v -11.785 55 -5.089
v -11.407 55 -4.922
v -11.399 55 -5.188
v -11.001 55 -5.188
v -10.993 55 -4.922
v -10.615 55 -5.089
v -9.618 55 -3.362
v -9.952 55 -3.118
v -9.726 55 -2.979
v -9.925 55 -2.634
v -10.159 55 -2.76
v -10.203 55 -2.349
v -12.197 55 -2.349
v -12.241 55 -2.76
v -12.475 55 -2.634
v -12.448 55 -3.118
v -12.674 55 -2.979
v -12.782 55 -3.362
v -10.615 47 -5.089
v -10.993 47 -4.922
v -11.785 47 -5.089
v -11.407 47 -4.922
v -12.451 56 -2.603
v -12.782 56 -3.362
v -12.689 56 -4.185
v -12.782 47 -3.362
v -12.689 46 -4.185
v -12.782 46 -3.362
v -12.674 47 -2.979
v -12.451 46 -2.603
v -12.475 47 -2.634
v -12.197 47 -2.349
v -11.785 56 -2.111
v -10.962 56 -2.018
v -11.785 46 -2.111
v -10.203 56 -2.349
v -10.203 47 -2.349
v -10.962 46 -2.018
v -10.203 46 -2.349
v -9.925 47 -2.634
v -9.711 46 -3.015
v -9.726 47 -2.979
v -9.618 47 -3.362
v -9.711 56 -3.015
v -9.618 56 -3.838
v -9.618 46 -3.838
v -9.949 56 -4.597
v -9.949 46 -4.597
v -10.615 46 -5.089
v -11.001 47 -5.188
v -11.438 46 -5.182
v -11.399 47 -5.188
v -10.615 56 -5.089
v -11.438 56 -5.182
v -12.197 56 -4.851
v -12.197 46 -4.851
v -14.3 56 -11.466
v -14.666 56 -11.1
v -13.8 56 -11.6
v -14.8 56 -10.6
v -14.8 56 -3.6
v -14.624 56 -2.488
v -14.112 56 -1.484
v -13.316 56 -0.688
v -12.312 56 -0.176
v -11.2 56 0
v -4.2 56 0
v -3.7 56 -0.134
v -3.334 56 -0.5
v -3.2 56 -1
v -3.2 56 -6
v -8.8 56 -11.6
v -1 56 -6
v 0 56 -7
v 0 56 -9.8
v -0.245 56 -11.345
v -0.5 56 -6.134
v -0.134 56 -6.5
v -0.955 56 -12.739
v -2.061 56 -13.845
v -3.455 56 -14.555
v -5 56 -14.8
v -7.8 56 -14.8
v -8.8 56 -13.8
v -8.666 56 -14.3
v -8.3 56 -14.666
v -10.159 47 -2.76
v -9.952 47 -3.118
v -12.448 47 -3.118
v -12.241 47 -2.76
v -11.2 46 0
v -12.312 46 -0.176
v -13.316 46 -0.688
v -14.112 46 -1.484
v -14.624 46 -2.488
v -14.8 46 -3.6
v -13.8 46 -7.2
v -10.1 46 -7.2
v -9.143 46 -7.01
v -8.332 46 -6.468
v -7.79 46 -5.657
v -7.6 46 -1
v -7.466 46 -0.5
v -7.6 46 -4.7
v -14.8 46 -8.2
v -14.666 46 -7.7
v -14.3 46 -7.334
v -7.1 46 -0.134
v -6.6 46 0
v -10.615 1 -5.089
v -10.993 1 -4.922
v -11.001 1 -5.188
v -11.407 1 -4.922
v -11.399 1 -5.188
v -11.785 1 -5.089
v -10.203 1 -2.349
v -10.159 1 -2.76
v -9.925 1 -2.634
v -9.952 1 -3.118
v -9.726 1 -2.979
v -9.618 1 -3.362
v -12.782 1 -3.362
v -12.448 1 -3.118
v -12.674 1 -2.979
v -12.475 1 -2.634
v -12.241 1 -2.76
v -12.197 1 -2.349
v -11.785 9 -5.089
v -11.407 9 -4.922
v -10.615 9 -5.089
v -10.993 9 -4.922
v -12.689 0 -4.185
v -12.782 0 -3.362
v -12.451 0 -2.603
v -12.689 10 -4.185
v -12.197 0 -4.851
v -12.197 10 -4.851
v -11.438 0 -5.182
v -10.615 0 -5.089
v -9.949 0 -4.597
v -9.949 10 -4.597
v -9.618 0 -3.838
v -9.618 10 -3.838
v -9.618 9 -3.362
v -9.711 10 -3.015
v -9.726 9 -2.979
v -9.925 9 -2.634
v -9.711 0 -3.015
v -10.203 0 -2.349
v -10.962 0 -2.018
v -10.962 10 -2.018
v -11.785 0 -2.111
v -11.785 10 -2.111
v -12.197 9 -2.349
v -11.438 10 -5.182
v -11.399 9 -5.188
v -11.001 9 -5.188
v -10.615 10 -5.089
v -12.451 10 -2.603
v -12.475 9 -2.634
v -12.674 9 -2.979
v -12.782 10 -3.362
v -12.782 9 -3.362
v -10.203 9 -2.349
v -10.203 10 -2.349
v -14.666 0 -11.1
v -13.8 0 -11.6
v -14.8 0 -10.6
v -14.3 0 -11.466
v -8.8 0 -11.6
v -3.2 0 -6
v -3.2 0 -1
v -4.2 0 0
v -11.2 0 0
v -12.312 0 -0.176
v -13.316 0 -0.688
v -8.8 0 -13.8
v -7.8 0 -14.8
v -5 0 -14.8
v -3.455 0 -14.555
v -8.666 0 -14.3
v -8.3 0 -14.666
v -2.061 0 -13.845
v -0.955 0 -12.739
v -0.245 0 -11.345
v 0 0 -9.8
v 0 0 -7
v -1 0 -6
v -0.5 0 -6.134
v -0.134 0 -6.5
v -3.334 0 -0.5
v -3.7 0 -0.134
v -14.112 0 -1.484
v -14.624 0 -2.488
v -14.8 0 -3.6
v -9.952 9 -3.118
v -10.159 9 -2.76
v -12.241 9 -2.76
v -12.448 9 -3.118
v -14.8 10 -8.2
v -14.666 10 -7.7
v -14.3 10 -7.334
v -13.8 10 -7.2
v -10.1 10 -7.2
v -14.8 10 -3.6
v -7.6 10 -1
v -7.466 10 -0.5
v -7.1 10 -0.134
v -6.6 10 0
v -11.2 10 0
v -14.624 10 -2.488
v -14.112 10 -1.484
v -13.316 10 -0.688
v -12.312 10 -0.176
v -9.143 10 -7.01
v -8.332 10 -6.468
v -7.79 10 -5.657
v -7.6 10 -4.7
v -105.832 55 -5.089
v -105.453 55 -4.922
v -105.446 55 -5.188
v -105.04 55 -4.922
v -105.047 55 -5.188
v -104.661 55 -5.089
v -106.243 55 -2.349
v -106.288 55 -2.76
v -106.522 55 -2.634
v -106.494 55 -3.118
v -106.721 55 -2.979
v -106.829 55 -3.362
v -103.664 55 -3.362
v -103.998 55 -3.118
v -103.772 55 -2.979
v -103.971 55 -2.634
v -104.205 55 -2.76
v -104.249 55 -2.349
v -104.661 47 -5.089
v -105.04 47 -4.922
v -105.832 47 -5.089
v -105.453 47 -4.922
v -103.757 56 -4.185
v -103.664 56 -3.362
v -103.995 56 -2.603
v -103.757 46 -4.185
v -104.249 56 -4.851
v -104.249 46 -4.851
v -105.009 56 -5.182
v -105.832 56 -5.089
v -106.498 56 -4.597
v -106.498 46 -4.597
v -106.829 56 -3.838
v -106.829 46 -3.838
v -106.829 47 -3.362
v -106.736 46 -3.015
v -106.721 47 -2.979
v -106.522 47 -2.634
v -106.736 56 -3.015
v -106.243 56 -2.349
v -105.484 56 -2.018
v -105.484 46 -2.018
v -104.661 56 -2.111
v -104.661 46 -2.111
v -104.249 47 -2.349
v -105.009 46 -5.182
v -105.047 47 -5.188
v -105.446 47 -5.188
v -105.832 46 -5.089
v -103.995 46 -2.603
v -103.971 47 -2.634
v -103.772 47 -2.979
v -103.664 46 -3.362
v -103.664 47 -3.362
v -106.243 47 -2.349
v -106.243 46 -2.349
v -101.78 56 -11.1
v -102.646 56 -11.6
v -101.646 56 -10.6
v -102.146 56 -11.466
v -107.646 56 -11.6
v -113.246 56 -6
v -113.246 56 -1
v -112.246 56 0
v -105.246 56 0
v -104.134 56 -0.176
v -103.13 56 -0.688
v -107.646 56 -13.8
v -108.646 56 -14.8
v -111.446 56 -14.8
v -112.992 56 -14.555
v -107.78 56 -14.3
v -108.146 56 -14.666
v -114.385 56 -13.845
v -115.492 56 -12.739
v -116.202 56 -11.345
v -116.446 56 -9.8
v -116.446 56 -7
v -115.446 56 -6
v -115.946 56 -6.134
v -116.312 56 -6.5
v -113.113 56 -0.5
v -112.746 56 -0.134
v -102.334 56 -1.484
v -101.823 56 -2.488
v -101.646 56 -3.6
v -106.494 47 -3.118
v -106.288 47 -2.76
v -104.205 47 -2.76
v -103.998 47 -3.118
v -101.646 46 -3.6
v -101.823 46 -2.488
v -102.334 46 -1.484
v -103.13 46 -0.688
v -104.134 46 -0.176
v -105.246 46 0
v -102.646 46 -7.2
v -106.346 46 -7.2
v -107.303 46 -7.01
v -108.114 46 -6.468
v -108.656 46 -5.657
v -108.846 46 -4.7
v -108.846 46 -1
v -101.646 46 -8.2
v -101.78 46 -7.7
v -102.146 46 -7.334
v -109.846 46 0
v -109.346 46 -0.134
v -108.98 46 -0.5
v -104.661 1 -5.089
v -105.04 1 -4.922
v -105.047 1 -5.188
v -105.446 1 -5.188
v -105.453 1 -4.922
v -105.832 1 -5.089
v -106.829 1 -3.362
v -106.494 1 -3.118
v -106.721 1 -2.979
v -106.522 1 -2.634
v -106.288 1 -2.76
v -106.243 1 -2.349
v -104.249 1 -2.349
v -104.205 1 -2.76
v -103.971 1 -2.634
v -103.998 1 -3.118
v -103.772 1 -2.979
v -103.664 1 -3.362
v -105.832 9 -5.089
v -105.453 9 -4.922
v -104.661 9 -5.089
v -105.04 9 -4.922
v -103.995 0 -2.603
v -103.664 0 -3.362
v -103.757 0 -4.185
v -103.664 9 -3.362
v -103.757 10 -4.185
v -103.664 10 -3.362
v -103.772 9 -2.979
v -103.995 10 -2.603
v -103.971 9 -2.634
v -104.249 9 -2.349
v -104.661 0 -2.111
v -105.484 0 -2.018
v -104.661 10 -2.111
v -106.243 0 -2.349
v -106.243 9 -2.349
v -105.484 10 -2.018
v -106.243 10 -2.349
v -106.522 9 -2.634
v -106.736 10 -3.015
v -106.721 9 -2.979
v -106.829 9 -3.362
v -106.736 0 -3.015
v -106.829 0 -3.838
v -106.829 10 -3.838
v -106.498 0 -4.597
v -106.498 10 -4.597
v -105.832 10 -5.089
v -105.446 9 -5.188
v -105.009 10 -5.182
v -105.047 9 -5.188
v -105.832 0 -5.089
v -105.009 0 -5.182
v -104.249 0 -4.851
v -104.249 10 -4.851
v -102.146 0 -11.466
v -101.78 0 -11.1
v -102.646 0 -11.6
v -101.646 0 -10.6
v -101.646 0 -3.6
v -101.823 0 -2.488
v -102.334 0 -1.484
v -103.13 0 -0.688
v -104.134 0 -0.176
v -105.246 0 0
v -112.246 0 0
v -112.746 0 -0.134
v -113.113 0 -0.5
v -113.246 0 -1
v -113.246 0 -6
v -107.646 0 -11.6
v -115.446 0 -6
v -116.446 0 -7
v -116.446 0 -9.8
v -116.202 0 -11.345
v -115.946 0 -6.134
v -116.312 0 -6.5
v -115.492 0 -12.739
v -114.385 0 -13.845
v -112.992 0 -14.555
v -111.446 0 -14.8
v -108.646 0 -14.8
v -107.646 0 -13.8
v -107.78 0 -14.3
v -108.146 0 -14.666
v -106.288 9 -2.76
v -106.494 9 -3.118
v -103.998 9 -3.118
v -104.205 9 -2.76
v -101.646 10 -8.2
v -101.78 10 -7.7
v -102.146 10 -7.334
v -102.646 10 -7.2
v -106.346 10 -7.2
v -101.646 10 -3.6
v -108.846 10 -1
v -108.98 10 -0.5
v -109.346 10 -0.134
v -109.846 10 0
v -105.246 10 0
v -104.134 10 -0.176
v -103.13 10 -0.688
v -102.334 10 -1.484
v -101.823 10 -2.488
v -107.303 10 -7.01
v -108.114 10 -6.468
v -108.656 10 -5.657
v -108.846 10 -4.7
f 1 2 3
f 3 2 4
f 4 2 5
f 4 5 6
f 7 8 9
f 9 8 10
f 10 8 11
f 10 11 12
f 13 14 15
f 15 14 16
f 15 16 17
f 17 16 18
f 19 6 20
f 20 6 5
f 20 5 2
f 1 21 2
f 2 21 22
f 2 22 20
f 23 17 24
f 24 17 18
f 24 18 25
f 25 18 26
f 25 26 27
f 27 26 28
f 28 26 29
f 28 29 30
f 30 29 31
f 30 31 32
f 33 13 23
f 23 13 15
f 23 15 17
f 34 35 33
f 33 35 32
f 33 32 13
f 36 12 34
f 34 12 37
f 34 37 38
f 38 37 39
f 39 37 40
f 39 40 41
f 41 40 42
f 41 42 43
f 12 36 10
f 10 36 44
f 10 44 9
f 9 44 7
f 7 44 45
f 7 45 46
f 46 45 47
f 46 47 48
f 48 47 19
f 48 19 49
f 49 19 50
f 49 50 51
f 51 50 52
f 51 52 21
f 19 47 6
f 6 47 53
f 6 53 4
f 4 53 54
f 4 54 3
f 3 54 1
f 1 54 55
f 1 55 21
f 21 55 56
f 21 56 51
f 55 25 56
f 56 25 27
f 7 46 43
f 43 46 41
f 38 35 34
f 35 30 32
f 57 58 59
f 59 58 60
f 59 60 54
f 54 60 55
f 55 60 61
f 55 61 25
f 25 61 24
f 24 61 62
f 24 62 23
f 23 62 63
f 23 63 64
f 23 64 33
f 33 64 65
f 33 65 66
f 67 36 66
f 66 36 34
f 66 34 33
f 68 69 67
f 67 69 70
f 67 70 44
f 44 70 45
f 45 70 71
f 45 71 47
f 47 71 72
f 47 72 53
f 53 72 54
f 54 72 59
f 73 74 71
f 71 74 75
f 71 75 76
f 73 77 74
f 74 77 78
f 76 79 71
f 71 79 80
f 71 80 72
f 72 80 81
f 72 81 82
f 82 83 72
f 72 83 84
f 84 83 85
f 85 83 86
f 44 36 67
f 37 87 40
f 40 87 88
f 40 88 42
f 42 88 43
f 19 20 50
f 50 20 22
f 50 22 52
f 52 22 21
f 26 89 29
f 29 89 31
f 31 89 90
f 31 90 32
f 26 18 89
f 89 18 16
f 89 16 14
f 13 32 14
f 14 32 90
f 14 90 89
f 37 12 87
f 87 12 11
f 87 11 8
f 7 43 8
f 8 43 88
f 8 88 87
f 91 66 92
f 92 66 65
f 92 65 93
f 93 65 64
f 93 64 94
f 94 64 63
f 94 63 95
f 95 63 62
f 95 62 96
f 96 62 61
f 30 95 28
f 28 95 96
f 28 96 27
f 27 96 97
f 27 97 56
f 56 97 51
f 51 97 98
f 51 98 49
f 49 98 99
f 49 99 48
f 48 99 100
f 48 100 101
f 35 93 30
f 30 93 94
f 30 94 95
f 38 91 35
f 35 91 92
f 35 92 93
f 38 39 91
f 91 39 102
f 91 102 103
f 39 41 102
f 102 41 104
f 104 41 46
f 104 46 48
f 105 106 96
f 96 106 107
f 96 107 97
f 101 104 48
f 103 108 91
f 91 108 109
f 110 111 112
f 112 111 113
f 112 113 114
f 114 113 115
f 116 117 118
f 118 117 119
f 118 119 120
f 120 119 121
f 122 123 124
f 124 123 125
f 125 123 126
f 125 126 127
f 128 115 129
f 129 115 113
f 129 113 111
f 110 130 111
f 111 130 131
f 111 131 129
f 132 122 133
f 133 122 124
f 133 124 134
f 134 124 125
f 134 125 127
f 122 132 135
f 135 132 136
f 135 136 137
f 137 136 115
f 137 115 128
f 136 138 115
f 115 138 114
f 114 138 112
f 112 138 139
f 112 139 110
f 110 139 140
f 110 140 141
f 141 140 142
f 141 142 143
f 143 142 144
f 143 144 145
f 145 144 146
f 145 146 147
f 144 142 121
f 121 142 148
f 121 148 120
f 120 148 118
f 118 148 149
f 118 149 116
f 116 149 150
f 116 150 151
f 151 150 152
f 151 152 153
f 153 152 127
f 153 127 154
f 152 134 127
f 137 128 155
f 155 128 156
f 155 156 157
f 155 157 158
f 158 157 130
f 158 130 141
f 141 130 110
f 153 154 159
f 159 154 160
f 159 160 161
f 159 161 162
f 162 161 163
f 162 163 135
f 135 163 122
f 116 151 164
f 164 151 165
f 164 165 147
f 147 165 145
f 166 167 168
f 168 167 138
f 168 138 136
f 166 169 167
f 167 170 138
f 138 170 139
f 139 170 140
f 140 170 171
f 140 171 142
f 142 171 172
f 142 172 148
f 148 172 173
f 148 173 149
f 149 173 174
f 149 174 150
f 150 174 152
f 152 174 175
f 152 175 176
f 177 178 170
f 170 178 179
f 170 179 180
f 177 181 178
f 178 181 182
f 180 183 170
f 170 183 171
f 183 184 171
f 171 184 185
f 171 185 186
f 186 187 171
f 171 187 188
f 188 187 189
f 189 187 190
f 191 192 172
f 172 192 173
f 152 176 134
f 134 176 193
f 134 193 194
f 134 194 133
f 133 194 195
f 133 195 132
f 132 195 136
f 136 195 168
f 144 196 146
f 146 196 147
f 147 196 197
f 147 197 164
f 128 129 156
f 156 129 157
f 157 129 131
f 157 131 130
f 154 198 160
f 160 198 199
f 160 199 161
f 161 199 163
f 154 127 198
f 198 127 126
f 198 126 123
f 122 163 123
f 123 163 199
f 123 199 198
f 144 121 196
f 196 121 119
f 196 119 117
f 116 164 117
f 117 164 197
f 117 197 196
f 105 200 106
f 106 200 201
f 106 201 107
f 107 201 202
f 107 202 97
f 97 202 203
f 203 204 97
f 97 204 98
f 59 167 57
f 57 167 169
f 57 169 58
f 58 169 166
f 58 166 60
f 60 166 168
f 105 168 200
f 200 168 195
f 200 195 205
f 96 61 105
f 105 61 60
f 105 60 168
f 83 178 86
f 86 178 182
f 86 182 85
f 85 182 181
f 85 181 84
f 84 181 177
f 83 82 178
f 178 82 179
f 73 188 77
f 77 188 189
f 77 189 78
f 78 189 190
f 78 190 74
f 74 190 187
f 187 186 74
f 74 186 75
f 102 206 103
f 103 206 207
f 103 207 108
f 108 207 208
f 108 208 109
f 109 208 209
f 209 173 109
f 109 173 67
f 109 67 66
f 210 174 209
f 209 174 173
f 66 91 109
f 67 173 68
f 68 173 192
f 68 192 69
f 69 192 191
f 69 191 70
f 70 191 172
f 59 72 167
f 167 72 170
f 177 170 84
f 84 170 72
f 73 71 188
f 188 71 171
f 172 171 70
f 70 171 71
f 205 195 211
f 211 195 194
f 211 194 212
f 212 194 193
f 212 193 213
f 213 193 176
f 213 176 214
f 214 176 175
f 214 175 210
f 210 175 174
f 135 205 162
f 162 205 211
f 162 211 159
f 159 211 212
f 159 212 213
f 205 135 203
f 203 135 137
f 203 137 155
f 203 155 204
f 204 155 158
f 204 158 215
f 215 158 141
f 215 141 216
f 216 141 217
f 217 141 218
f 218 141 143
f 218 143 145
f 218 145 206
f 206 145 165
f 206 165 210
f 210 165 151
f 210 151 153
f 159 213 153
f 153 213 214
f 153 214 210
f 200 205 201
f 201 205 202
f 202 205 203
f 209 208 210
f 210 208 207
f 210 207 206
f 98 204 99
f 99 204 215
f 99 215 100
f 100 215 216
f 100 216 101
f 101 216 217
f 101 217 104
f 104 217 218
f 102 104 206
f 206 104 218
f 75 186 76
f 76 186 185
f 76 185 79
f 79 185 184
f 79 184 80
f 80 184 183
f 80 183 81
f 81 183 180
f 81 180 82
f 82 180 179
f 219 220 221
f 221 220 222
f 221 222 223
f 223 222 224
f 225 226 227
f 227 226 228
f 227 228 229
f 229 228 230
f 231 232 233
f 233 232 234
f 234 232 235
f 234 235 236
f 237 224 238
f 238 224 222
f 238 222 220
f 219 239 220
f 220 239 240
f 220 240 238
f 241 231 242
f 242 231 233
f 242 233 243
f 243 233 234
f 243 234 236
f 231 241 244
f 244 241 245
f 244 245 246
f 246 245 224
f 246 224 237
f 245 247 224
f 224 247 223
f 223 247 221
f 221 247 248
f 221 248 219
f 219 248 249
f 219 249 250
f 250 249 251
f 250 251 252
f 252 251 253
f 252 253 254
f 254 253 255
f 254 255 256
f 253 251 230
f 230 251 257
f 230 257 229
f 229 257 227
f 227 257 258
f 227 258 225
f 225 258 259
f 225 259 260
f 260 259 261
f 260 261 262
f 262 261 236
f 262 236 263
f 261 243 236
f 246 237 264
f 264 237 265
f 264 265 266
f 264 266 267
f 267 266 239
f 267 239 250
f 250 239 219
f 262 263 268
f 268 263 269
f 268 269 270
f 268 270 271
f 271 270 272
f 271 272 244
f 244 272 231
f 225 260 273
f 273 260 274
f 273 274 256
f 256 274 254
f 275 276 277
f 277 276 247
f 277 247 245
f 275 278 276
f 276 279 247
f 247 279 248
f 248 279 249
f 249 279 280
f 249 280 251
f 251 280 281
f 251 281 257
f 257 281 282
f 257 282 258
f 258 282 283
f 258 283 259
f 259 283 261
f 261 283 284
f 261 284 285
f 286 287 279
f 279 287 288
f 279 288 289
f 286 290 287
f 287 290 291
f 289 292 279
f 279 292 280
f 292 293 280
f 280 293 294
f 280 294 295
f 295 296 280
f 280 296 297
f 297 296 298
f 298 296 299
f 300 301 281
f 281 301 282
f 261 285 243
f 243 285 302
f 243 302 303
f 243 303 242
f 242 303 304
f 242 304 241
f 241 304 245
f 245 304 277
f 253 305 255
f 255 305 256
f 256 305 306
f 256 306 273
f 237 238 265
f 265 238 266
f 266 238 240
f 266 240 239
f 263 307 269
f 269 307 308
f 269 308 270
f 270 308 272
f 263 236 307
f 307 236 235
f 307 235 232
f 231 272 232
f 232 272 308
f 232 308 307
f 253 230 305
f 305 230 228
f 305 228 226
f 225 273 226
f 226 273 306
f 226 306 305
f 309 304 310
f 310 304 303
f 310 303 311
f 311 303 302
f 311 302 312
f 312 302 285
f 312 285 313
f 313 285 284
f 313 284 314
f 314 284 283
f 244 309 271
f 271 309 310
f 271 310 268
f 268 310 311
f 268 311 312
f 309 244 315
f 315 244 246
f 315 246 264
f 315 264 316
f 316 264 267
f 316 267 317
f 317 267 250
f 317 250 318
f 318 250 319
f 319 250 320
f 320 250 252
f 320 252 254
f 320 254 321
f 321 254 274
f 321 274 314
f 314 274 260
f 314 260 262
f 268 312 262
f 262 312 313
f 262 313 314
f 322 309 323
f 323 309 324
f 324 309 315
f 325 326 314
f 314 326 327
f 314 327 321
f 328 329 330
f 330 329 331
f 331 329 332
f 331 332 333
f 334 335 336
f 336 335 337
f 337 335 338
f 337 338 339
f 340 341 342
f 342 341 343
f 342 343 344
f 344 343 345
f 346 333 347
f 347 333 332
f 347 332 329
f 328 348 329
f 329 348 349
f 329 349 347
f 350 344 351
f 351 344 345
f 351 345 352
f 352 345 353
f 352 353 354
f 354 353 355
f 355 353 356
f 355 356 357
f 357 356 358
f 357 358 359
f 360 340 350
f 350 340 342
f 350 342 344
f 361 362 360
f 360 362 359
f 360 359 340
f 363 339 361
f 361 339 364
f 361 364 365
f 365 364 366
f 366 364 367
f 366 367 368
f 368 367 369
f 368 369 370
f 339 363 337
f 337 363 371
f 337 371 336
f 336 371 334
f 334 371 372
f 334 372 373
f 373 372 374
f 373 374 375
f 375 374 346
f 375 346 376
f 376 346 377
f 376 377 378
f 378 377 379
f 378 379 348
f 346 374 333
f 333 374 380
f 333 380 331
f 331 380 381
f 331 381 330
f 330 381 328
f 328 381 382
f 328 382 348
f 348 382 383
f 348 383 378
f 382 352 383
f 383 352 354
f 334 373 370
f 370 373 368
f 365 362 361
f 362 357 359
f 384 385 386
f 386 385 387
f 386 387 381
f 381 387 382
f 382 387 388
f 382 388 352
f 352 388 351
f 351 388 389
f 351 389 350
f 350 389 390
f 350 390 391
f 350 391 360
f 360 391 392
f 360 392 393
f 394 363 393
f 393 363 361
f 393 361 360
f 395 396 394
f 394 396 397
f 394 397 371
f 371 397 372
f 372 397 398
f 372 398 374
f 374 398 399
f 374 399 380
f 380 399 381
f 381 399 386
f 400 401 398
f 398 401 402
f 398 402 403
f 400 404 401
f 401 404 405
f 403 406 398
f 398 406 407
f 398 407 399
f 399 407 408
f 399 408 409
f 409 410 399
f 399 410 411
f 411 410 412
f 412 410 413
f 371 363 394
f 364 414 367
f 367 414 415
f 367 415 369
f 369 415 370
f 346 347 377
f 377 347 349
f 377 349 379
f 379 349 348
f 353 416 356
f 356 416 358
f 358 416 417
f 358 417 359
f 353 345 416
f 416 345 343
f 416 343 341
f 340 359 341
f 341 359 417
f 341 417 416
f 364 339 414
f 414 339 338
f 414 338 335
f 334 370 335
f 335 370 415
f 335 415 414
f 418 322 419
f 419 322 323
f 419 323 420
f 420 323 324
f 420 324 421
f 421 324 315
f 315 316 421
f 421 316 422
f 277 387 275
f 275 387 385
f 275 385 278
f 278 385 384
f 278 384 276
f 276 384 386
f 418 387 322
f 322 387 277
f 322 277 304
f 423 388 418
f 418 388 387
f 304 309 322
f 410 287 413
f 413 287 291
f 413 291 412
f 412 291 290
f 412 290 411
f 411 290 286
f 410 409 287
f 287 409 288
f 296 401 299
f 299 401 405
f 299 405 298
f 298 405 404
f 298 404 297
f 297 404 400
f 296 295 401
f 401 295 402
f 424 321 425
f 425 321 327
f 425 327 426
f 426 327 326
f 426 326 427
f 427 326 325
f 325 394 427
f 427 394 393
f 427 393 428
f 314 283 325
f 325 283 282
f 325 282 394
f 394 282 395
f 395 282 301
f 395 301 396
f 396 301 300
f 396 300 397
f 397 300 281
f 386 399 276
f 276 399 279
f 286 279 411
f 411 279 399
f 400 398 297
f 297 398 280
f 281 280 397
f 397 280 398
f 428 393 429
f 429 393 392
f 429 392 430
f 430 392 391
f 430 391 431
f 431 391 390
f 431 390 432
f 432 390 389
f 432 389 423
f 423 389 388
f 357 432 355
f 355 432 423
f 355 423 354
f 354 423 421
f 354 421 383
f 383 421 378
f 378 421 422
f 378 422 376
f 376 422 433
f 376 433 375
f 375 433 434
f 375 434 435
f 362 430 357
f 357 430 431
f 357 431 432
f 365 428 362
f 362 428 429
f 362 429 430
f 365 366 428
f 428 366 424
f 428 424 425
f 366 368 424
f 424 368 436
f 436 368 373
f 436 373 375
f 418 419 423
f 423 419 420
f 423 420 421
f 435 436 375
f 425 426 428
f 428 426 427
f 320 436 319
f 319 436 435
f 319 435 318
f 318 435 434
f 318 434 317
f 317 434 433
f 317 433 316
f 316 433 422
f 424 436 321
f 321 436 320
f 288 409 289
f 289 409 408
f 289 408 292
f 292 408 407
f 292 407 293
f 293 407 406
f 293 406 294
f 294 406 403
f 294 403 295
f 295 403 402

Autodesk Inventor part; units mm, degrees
sketch "Sketch1" plane through (0, 0, 0) normal (0, 1, 0) x (-1, 0, 0)
  line L0 (0, 0) -> (7.6, 0)
  line L1 (7.6, 0) -> (7.6, -4.7)
  line L2 (7.6, -7.2) -> (0, -7.2)
  line L3 (0, -7.2) -> (0, 0)
  line L4 (10.1, -7.2) -> (14.8, -7.2)
  line L5 (14.8, -7.2) -> (14.8, -14.8)
  line L6 (14.8, -14.8) -> (5, -14.8)
  line L7 (0, -9.8) -> (0, -7.2)
  arc A0 (0, -9.8) -> (5, -14.8) centre (5, -9.8) ccw
  circle A1 centre (11.2, -3.6) radius 3.6
  line L8 (7.6, 0) -> (11.2, 0)
  line L9 (14.8, -7.2) -> (14.8, -3.6)
  arc A2 (7.6, -4.7) -> (10.1, -7.2) centre (10.1, -4.7) ccw
  circle A3 centre (11.2, -3.6) radius 1.6
  line L10 (0, 0) -> (3.2, 0)
  line L11 (3.2, 0) -> (3.2, -6)
  line L12 (3.2, -6) -> (0, -6)
  line L13 (0, -6) -> (0, 0)
  line L14 (14.8, -14.8) -> (8.8, -14.8)
  line L15 (8.8, -14.8) -> (8.8, -11.6)
  line L16 (8.8, -11.6) -> (14.8, -11.6)
  line L17 (14.8, -11.6) -> (14.8, -14.8)
  circle A4 centre (11.2, -3.6) radius 1.3
  line L18 (11.2, -3.6) -> (11.2, -5.9)
  circle A5 centre (11.2, -5.9) radius 1
  circle A6 centre (13.1919, -2.45) radius 1
  circle A7 centre (9.2081, -2.45) radius 1
  point P0 (9.9, -14.8)
  point P1 (7.6, -7.4)
  point P2 (8.8, -14.8)
  point P3 (10.6148, -5.0891)
  point P4 (11.7852, -5.0891)
  point P5 (10.203, -2.3486)
  point P6 (9.6178, -3.3623)
  point P7 (12.7822, -3.3623)
  point P8 (12.197, -2.3486)
  dimension "d0" = 5
  dimension "d1" = 7.6
  dimension "d2" = 7.6
  dimension "d3" = 14.8
  dimension "d4" = 14.8
  dimension "d13" = 2.5
  dimension "d14" = 3.2
  dimension "d15" = 2
  dimension "d16" = 3.2
  dimension "d17" = 6
  dimension "d18" = 6
  dimension "d19" = 3.2
  dimension "d24" = 2.6
  dimension "d25" = 2
  dimension "d28" = 360
extrude "Extrusion1" add sketch "Sketch1" along normal blind 28 contours L0 L11 L12 L3 | L0 L1 A2 L4 L5 L16 L15 L6 A0 L7 L3 L12 L11 | L15 L16 L5 L6
extrude "Extrusion2" add sketch "Sketch1" along normal blind 10 contours L8 A1 L1 | A1 L4 A2 L1 | A1 | A1 L9 L4 | A6 A3 | A3 A6 | A5 A3 | A3 L18 A5 | A3 A5 L18 | A7 A3 | A3 A7
extrude "Extrusion3" cut sketch "Sketch1" along normal blind 50 contours L0 L11 L12 L3 | L15 L16 L5 L6
fillet "Fillet1" radius 1 6 edges at (-3.2, 14, 0) (-7.6, 19, 0) (0, 14, -6) (-8.8, 14, -14.8) (-14.8, 14, -11.6) (-14.8, 19, -7.2)
ref_plane "Work Plane1" through (-3.4929, 28, -0.2929) normal (0, 1, 0) x (1, 0, 0)
sketch "Sketch3" plane through (0, 10, 0) normal (0, 1, 0) x (1, 0, 0)
  arc A0 (-12.197, 2.3486) -> (-10.203, 2.3486) centre (-11.2, 3.6) ccw projected
  circle A1 centre (-11.2, 3.6) radius 1.6
  point P0 (0, 0)
  point P1 (-10.203, 2.3486)
  point P2 (-12.197, 2.3486)
  dimension "d33" = 3.2
extrude "Extrusion5" cut sketch "Sketch3" against normal blind 1
ref_plane "Work Plane3" through (0, 5, 0) normal (0, 1, 0) x (1, 0, 0)
mirror "Mirror3" about plane through (0, 5, 0) normal (0, 1, 0) of "Extrusion5"
mirror "Mirror1" about plane through (-3.4929, 28, -0.2929) normal (0, 1, 0)
ref_plane "Work Plane2" through (-58.2232, 0, -10.6) normal (-1, 0, 0) x (0, 0, 1)
mirror "Mirror2" about plane through (-58.2232, 0, -10.6) normal (-1, 0, 0)
properties part number "Esquineros Delanteros"
